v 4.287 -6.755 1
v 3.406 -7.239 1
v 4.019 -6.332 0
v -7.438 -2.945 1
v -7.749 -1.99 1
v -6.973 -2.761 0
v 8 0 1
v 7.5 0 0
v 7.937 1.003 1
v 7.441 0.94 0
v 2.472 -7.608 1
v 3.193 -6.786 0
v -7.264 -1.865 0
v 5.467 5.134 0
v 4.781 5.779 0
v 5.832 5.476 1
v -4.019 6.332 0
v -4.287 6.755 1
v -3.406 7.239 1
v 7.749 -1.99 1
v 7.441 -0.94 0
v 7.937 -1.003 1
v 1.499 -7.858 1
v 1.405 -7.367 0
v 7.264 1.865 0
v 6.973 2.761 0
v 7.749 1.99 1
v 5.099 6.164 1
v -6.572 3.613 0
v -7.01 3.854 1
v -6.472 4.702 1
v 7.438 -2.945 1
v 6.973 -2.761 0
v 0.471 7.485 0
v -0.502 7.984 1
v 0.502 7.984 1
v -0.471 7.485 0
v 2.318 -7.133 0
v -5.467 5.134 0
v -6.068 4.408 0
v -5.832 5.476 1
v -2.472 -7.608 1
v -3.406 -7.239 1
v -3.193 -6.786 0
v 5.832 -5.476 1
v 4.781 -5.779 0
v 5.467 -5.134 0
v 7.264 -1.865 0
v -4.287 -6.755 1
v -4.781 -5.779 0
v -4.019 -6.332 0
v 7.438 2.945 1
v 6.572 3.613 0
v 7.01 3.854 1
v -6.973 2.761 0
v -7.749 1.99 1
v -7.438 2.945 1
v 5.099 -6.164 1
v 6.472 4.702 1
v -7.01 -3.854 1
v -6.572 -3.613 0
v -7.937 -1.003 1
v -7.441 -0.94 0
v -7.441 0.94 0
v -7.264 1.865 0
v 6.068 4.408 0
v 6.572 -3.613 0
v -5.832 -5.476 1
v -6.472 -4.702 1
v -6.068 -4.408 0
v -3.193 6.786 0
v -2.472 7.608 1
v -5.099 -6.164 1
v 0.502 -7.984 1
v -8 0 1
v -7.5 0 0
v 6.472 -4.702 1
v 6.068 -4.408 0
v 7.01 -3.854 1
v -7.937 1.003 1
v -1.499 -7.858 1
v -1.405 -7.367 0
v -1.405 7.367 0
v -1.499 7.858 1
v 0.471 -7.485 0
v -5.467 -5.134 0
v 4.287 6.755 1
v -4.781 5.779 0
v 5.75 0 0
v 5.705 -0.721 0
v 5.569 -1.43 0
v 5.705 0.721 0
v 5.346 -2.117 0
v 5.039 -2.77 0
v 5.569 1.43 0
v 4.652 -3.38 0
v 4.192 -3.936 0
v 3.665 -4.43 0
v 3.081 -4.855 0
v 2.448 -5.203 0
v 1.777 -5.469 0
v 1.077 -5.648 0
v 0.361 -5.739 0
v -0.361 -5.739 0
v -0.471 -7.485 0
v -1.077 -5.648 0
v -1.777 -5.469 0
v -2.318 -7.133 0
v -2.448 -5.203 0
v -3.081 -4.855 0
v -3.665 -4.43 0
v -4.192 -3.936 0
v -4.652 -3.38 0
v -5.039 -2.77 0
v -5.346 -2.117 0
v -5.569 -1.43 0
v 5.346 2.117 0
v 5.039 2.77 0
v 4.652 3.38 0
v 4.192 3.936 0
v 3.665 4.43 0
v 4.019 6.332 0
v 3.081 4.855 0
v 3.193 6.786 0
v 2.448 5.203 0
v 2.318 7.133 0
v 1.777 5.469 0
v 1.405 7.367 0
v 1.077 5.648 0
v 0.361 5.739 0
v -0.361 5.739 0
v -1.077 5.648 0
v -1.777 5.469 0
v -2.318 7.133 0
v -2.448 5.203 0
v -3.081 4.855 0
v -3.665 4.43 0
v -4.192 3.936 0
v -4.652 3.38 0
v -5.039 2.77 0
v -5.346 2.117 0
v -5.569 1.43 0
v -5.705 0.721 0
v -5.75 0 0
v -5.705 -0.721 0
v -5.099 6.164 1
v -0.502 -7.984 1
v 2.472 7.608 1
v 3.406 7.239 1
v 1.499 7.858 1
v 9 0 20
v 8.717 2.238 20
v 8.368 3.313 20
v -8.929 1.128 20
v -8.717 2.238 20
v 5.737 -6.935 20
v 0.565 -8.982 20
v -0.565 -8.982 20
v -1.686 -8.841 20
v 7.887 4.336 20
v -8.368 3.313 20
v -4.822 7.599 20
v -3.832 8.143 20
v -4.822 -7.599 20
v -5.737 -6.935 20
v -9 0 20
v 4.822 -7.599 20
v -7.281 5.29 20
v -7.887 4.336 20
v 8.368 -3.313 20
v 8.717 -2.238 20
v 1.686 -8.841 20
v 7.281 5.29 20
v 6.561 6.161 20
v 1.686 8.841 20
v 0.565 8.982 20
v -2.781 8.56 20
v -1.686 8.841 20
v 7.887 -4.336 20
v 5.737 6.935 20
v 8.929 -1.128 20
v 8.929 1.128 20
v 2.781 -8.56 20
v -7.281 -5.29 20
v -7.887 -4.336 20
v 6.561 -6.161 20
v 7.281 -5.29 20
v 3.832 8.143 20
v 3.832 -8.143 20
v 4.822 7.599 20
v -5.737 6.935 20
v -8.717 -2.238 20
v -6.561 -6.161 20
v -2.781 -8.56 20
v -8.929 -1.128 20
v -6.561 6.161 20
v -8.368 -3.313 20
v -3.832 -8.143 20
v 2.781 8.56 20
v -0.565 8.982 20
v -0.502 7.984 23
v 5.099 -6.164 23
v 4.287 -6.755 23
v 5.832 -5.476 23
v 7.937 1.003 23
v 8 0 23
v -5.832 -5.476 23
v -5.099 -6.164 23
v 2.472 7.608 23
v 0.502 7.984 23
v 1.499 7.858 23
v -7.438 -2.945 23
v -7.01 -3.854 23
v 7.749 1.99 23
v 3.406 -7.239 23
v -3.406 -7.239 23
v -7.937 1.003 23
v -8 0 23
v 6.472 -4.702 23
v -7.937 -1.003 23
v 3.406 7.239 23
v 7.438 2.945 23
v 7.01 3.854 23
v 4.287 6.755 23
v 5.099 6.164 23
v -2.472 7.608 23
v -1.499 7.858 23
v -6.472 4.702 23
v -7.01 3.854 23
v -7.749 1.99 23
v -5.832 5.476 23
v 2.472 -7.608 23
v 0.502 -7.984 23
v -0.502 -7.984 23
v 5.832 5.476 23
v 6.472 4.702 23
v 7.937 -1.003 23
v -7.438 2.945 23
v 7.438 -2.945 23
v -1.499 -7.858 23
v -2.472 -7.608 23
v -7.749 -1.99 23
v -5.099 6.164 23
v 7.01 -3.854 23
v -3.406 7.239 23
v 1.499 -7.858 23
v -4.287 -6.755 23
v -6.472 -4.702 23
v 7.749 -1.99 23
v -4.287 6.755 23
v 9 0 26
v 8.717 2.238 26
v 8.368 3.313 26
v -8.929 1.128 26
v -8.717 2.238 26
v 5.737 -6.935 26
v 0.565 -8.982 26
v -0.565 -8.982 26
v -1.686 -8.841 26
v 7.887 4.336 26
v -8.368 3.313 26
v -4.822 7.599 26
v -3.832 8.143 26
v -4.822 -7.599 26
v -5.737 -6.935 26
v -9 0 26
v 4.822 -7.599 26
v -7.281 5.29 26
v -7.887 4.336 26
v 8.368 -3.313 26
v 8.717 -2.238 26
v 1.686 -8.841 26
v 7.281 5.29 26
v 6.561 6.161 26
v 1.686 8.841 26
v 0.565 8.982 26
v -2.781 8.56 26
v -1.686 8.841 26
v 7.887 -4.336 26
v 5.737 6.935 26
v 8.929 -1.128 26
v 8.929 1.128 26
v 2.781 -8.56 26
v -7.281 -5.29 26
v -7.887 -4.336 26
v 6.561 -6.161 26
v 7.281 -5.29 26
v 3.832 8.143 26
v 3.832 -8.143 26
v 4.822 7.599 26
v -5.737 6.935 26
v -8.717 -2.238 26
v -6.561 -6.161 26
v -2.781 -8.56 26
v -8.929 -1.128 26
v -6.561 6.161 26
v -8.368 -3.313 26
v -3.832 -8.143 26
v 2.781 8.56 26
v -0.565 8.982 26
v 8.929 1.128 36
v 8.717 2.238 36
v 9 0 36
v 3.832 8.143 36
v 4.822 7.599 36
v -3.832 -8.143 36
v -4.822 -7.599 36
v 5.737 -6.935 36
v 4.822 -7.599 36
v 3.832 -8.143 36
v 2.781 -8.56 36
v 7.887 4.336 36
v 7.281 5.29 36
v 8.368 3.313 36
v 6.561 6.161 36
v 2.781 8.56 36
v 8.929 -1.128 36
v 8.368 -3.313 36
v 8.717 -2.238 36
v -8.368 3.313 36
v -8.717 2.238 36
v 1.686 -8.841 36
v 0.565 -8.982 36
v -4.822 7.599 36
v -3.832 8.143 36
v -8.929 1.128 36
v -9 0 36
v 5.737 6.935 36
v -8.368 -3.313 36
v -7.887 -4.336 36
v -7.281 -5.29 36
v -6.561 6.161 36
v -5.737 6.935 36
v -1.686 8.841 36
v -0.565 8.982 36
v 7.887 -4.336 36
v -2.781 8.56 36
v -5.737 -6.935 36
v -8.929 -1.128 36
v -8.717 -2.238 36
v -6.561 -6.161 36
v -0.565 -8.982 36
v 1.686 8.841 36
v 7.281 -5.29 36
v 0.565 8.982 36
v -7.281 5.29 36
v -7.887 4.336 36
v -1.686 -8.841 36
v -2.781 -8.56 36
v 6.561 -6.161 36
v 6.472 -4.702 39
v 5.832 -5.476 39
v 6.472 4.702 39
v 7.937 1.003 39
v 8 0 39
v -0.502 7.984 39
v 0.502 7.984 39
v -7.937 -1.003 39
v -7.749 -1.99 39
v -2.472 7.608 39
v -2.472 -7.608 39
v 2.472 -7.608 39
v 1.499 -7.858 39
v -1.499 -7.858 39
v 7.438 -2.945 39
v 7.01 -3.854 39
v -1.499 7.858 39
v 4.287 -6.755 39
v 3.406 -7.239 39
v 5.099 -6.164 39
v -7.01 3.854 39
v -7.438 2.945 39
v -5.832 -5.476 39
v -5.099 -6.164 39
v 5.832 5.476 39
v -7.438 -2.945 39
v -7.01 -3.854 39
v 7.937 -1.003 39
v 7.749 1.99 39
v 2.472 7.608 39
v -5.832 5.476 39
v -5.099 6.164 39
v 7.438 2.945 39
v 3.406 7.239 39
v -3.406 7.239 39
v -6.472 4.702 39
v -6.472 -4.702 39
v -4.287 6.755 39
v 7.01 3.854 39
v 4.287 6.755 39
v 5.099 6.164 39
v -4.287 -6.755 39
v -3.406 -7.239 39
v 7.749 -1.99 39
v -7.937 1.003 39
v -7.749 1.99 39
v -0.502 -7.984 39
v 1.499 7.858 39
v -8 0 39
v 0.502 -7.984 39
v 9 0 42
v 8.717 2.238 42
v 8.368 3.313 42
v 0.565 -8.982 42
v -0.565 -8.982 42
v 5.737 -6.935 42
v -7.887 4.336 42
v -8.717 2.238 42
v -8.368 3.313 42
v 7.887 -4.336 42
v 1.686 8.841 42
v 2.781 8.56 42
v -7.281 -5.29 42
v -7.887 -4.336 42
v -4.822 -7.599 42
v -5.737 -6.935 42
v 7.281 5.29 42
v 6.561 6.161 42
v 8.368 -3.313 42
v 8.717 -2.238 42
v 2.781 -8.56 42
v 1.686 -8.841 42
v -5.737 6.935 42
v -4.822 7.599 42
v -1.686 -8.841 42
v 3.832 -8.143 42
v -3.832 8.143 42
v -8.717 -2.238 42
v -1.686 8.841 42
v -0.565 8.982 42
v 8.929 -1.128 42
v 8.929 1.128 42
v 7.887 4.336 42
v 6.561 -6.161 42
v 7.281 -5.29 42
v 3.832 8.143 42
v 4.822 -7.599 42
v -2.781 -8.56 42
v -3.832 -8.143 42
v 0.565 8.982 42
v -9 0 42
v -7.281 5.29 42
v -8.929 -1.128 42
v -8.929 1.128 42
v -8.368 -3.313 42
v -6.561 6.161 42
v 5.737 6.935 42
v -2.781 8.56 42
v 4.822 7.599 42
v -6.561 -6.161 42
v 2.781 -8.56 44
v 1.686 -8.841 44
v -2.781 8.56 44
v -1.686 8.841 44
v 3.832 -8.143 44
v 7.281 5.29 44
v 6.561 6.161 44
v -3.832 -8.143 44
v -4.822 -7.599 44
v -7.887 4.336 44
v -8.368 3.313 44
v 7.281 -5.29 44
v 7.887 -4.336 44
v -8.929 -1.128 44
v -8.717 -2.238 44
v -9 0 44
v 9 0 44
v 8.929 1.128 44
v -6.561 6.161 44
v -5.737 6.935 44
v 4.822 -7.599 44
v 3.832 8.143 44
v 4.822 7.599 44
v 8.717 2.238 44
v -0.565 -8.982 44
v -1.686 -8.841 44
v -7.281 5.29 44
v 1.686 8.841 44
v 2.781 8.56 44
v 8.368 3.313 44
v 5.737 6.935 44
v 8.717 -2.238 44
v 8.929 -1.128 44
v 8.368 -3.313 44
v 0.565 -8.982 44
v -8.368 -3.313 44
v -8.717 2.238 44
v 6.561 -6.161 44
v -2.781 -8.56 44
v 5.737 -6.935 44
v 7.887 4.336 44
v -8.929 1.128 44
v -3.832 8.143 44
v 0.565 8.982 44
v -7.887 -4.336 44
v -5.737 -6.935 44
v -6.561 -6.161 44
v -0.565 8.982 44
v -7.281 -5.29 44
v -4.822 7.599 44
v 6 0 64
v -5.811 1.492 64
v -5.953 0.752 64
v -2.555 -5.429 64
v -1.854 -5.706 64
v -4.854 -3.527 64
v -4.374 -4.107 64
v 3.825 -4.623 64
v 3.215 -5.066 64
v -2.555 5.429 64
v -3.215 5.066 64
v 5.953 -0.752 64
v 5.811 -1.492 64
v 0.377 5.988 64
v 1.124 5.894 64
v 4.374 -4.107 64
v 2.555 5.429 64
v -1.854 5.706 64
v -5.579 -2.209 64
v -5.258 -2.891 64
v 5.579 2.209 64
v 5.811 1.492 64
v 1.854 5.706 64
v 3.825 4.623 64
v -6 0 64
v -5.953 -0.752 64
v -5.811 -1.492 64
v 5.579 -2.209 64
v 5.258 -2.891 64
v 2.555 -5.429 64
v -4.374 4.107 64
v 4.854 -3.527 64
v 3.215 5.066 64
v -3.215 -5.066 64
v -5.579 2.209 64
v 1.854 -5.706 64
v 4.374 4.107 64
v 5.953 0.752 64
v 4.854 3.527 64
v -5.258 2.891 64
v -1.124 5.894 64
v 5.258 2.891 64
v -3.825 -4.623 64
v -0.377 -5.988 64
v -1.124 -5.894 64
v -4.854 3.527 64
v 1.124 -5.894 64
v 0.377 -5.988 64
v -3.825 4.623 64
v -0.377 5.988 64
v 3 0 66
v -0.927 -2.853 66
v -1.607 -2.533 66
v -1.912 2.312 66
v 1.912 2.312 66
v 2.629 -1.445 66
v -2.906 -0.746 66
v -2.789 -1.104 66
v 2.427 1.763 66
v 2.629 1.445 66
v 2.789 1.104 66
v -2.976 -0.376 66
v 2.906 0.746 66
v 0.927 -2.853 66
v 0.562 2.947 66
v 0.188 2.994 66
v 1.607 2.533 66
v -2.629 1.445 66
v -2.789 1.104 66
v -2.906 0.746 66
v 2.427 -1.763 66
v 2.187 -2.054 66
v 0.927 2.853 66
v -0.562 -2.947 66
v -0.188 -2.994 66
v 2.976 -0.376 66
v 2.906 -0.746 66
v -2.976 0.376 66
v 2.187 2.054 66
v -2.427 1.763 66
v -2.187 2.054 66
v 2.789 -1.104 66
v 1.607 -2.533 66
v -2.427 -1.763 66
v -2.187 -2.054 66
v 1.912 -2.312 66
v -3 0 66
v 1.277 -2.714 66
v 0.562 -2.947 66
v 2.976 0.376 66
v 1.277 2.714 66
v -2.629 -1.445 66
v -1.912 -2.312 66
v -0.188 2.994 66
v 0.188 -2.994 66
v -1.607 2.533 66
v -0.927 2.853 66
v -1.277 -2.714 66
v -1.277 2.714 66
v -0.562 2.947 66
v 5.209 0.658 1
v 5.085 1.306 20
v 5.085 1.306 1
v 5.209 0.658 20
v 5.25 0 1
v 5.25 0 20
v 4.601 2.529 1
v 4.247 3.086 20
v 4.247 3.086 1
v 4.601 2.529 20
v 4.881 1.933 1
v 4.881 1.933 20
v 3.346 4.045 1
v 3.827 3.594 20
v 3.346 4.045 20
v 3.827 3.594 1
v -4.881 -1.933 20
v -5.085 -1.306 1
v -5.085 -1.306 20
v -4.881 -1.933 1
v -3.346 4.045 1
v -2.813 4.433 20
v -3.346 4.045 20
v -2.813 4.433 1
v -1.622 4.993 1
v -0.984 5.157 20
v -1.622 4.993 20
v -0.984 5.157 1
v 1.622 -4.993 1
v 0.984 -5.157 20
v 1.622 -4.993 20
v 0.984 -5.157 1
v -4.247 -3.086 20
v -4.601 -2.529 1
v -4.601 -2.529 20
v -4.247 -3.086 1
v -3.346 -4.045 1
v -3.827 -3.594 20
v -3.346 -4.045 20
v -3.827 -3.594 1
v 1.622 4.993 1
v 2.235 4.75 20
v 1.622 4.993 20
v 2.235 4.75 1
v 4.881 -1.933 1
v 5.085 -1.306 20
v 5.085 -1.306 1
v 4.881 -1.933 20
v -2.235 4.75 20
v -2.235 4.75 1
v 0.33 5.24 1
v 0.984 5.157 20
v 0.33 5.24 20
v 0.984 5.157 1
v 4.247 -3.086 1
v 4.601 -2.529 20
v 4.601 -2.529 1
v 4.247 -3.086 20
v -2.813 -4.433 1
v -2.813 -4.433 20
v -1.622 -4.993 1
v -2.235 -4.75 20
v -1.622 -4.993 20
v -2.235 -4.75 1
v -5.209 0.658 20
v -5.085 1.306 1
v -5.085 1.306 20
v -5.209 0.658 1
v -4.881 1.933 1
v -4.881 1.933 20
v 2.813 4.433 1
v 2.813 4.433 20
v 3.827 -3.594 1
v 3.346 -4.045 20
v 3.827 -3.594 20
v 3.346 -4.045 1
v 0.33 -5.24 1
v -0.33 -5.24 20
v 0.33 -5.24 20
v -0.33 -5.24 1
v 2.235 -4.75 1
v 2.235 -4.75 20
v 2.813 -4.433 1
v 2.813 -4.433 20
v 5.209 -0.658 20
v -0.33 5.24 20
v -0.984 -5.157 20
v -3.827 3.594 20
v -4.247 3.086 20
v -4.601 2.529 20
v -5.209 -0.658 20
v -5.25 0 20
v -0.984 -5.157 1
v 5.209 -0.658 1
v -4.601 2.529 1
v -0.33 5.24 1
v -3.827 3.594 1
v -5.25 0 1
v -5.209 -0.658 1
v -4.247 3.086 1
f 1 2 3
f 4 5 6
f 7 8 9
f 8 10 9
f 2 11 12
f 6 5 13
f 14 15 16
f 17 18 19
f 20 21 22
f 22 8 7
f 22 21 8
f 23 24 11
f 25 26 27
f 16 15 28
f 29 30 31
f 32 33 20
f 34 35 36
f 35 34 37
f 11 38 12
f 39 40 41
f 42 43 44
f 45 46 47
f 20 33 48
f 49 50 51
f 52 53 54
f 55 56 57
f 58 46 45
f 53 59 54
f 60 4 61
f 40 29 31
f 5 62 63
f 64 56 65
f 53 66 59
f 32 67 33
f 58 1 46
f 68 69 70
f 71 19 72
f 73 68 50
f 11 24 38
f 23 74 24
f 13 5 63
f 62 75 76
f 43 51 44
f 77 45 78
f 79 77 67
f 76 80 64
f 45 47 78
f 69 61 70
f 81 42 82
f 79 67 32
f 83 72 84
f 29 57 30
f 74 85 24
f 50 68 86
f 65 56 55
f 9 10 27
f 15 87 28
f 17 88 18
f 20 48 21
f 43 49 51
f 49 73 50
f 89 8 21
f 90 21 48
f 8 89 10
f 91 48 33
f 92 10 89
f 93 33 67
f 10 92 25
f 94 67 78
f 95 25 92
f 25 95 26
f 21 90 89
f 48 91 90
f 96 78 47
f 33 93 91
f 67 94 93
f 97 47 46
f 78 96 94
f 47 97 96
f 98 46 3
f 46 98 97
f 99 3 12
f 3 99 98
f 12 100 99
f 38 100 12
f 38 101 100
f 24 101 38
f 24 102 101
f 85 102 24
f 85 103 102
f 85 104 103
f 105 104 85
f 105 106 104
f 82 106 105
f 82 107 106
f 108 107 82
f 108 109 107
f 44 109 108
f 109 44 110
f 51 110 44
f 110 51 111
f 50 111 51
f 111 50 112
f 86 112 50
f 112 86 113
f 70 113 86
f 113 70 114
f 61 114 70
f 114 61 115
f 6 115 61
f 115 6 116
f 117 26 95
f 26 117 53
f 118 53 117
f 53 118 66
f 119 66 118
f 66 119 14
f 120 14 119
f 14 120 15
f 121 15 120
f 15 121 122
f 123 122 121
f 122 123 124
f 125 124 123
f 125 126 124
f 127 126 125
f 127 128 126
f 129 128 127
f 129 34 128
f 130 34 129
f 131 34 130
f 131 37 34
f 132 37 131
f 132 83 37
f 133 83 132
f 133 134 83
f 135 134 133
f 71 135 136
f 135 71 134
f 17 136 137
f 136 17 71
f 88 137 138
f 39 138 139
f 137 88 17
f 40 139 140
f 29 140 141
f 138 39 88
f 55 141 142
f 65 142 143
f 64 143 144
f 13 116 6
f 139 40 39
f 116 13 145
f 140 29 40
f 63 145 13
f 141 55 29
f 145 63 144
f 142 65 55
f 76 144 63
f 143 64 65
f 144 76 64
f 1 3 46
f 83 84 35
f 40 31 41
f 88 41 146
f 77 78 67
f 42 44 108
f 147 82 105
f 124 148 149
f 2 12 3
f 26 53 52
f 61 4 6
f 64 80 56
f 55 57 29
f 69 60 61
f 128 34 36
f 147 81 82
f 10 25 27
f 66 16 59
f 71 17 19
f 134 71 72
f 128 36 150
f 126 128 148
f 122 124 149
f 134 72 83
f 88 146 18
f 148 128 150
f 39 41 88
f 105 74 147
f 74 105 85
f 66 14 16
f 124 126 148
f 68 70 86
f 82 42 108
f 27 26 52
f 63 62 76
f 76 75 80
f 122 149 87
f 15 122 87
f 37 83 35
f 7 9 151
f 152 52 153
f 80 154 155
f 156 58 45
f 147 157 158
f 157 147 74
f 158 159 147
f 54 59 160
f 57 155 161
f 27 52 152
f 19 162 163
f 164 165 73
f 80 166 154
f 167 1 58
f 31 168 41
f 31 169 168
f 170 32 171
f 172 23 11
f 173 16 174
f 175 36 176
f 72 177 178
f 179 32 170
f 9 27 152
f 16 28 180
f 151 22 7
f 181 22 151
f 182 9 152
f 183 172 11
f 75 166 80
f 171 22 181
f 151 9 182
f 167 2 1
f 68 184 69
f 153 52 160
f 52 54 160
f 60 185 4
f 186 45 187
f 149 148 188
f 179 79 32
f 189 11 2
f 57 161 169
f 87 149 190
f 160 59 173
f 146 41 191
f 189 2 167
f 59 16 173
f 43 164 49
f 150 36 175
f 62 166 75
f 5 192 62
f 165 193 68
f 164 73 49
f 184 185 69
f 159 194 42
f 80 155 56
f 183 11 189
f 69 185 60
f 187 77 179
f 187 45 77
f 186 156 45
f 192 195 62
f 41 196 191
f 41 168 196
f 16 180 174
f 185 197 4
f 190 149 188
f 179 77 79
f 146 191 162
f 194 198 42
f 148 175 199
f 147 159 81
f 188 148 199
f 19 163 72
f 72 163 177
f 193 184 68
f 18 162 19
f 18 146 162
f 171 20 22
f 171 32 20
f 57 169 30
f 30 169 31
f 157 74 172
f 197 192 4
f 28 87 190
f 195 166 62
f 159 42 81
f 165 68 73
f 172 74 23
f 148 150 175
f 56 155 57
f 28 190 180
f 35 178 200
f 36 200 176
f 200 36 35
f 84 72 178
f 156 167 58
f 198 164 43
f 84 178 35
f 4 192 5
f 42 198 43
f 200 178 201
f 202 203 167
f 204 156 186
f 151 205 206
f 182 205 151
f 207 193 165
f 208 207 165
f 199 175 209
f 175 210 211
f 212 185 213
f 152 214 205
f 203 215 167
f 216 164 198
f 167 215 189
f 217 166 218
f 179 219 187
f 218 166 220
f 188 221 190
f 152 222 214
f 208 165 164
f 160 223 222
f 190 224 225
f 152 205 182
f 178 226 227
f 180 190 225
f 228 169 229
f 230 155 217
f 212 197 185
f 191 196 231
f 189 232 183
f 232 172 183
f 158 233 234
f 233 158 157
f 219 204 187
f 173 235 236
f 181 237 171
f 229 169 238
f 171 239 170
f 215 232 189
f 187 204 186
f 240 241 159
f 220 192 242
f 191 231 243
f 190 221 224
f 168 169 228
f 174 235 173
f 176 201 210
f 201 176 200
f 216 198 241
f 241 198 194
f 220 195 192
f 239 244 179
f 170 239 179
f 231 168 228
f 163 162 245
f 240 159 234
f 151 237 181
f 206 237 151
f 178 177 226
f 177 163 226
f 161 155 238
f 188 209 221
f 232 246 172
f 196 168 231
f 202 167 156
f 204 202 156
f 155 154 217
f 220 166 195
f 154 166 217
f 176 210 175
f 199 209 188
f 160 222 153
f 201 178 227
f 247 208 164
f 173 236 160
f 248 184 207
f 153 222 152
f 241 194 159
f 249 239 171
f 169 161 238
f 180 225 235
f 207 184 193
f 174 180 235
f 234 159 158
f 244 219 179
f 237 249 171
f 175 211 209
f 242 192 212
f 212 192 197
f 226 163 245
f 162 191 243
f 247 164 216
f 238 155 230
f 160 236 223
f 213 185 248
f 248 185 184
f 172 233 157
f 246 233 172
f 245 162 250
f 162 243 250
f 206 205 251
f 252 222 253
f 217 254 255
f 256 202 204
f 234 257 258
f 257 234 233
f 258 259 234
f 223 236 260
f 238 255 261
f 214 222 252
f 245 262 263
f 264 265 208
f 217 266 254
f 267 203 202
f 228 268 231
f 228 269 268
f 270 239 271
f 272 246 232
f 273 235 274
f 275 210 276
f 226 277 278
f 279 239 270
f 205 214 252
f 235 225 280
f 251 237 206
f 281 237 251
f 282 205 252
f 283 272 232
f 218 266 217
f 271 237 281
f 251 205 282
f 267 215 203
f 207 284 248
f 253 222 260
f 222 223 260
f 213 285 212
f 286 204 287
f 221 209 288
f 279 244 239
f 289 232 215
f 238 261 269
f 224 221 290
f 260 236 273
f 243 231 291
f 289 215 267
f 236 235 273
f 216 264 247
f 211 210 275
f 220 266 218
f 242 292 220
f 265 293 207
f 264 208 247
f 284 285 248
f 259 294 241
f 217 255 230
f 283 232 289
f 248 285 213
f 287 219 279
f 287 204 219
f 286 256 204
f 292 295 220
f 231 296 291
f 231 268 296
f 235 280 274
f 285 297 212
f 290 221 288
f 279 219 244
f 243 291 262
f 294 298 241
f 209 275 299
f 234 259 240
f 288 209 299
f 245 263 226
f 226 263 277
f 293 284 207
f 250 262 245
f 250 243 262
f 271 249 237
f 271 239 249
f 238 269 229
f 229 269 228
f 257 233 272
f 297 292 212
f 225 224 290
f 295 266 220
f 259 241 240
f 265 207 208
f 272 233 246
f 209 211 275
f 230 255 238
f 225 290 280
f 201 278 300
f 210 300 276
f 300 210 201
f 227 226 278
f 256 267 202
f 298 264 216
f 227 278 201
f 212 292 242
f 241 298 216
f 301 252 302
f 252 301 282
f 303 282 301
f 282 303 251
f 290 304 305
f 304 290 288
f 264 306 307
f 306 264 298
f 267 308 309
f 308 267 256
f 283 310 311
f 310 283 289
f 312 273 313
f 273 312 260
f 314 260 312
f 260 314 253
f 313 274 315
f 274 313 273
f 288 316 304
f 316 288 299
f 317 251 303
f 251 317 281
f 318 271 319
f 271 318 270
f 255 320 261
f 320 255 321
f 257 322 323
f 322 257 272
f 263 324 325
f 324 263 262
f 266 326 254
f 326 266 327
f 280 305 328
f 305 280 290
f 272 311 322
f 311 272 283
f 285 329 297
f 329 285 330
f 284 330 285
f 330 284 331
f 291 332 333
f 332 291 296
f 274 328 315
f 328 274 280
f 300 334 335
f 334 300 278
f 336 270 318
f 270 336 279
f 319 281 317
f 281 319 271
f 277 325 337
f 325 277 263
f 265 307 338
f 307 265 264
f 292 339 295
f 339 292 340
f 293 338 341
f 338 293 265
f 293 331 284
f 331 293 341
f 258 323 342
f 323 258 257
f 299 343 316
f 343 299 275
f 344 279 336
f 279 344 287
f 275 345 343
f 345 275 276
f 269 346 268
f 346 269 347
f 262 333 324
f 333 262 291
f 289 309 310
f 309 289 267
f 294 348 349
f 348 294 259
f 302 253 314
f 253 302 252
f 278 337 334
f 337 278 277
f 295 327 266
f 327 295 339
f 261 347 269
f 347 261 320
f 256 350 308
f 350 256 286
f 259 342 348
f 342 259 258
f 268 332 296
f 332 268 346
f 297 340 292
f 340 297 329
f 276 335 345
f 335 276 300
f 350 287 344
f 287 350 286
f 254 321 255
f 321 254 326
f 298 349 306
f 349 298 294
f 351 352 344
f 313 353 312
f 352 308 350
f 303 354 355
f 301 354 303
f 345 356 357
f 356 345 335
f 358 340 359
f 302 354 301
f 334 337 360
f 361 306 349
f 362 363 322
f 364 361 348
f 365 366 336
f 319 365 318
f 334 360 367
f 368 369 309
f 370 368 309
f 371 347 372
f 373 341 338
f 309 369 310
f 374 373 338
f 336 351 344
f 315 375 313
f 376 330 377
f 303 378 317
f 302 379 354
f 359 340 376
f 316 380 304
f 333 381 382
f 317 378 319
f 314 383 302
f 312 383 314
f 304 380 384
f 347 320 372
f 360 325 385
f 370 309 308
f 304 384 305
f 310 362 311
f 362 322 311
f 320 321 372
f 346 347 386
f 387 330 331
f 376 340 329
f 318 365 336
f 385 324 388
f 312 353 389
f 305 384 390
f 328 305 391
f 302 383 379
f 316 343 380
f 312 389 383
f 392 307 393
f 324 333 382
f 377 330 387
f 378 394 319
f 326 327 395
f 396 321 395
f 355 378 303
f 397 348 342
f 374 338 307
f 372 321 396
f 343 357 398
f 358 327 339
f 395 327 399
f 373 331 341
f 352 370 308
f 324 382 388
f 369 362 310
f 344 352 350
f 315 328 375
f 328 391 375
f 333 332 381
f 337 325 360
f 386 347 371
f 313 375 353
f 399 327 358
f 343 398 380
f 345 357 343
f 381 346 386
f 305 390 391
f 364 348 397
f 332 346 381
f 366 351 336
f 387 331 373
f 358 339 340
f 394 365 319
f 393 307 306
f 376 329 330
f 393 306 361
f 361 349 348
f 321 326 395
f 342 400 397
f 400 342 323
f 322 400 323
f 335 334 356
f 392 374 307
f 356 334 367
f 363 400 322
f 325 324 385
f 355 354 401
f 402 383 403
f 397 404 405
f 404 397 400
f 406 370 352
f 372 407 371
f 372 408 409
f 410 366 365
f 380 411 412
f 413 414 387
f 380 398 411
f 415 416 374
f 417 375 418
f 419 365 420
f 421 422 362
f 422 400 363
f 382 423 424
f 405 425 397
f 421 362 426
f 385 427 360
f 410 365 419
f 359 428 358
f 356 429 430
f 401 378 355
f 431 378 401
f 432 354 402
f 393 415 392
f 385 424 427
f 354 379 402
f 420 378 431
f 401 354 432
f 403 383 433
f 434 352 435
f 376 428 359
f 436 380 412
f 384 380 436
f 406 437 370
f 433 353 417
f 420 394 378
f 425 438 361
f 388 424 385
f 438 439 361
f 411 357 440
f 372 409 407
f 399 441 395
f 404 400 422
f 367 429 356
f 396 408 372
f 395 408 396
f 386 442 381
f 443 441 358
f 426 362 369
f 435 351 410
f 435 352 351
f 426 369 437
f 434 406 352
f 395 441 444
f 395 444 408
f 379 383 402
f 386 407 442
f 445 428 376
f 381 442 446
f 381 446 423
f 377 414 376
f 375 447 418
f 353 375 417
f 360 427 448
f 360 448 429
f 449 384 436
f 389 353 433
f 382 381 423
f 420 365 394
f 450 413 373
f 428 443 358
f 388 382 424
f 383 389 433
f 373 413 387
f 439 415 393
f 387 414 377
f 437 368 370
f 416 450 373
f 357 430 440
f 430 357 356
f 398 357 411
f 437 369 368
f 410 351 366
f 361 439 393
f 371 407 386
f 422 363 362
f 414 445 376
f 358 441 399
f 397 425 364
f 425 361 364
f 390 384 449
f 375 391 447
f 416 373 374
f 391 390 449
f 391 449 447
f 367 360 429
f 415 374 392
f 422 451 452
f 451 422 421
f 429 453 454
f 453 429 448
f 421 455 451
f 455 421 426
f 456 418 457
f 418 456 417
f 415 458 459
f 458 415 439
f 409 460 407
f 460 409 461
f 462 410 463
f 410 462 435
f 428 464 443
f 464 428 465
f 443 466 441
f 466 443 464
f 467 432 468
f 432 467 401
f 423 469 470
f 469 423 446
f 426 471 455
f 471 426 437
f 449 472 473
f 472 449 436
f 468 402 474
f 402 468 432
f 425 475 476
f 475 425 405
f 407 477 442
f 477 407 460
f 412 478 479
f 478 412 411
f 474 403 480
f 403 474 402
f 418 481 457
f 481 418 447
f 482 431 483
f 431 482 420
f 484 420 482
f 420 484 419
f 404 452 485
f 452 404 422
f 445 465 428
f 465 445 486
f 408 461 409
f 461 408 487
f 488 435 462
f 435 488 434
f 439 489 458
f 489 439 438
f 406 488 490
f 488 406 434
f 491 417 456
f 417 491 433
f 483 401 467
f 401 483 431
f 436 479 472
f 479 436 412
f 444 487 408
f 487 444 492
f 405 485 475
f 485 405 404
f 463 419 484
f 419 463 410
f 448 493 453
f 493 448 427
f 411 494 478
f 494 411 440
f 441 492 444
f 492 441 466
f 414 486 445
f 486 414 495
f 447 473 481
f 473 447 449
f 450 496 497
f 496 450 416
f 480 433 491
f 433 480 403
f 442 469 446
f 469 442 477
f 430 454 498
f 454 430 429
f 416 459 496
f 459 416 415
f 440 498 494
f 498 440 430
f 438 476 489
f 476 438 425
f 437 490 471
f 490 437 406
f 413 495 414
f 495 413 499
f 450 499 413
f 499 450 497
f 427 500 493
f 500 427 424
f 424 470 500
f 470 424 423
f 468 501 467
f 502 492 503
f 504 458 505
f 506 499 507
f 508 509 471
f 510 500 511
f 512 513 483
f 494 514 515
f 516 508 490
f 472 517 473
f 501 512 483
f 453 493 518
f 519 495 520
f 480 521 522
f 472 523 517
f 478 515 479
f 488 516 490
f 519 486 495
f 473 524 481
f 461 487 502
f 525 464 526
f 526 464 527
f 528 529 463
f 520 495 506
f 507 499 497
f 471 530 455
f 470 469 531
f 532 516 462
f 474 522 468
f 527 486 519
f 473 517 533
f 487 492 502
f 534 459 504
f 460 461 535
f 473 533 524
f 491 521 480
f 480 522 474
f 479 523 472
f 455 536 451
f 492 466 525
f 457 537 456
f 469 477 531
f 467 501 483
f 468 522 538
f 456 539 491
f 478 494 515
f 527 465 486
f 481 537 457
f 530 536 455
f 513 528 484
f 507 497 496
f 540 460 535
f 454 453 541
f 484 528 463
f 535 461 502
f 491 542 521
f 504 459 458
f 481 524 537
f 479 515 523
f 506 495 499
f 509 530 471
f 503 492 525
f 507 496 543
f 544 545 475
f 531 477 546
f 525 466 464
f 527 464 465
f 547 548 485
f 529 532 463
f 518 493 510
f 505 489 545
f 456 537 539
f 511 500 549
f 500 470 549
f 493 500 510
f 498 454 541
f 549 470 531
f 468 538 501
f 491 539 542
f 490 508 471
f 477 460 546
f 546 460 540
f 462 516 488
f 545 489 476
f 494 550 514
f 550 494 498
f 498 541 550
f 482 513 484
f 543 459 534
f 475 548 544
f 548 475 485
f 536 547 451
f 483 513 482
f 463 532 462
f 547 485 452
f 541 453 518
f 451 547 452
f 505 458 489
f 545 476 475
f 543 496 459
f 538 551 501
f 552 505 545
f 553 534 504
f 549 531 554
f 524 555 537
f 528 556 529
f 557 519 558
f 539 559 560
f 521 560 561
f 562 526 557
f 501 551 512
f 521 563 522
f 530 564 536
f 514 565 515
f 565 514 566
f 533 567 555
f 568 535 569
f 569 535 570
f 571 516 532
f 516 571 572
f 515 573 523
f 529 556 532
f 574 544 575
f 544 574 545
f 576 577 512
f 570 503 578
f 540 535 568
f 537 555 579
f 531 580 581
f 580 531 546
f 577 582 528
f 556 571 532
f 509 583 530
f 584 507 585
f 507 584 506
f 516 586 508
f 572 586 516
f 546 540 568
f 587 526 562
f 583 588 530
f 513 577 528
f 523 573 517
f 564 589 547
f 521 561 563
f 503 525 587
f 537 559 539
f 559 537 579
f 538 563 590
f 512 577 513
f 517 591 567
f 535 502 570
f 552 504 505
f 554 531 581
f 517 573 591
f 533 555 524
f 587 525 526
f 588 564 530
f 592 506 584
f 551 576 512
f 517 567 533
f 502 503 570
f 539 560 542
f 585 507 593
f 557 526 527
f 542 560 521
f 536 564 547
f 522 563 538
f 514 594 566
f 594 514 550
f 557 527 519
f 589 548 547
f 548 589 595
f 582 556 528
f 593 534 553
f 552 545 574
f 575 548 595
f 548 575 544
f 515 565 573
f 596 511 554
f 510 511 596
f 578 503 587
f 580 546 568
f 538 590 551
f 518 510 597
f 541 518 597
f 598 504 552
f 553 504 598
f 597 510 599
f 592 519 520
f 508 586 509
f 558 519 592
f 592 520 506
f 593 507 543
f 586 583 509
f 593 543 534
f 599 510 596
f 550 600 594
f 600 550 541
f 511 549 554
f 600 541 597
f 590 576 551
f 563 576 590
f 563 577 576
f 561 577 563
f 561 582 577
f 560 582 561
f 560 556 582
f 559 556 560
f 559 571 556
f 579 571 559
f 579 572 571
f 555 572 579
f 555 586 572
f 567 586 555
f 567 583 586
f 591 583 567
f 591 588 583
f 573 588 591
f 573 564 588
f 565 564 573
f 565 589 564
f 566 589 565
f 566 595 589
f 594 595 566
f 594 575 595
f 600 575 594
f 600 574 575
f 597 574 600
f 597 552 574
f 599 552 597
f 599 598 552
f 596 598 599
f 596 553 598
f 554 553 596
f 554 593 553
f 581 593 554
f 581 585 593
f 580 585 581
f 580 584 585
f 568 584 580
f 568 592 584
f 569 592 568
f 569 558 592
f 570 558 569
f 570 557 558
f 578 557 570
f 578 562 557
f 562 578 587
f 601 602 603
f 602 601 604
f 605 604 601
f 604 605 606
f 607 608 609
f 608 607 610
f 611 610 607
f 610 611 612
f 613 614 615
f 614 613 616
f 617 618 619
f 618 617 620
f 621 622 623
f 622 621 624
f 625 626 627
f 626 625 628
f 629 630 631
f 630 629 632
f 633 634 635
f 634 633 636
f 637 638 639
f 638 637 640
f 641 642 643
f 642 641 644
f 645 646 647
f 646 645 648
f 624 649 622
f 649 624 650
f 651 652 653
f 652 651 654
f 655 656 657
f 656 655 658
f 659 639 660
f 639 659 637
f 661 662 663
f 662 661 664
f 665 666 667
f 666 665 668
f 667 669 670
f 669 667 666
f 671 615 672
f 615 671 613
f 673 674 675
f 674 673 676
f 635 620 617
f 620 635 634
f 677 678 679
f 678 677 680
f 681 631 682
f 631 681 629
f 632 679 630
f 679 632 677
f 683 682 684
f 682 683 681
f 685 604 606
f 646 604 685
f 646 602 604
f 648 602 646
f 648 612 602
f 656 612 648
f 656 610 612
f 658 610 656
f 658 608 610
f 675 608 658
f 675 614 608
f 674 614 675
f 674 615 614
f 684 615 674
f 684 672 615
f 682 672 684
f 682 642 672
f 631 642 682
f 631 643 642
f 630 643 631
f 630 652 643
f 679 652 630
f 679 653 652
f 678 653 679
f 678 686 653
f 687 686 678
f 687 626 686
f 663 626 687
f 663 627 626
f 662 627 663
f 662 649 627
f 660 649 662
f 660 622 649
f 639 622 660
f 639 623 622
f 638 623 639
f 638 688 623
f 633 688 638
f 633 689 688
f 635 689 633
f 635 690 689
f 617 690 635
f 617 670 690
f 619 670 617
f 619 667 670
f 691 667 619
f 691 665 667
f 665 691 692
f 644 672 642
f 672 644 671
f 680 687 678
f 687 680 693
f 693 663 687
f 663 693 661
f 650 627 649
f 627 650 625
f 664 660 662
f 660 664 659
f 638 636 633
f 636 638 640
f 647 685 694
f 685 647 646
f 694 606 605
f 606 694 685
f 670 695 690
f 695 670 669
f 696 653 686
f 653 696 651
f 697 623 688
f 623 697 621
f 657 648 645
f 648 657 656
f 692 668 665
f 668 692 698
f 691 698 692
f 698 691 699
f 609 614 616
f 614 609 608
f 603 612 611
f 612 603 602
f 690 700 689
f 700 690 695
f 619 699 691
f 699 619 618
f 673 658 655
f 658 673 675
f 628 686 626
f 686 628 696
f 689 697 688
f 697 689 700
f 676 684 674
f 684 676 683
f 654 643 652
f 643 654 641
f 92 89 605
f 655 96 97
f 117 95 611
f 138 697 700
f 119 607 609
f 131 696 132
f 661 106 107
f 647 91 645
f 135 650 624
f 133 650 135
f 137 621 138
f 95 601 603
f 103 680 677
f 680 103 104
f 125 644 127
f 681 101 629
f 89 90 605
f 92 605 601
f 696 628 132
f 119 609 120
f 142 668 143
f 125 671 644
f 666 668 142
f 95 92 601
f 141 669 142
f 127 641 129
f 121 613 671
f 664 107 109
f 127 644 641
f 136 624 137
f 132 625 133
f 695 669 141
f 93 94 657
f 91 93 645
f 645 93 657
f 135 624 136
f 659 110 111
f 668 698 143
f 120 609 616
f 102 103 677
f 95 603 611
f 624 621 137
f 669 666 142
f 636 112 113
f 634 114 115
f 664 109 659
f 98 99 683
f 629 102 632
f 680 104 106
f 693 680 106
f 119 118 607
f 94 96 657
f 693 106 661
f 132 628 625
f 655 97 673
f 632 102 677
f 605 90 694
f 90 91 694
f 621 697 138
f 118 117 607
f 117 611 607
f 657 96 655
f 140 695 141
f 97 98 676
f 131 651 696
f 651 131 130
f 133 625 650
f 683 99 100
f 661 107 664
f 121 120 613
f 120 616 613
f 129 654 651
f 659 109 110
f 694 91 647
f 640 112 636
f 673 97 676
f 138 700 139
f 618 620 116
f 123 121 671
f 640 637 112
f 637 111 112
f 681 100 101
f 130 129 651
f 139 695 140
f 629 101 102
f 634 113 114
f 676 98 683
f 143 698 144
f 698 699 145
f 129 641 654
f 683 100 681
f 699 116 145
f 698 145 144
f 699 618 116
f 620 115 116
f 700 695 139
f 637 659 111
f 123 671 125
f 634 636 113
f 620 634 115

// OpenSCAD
$fn=50;

difference() {
    union() {
        translate([0, 0, 0]) cylinder(r1=7.5, r2=8, h=1);
        translate([0, 0, 1]) cylinder(r1=8, r2=9, h=19);
        translate([0, 0, 20]) cylinder(r1=9, r2=8, h=3);
        translate([0, 0, 23]) cylinder(r2=9, r1=8, h=3);
        translate([0, 0, 26]) cylinder(r=9, h=10);
        translate([0, 0, 36]) cylinder(r1=9, r2=8, h=3);
        translate([0, 0, 39]) cylinder(r2=9, r1=8, h=3);
        translate([0, 0, 42]) cylinder(r=9, h=2);
        translate([0, 0, 44]) cylinder(r1=9, r2=6, h=20);
        translate([0, 0, 64]) cylinder(r1=6, r2=3, h=2);
    }
    cylinder(d=10.5, h=20);
    cylinder(d1=11.5, d2=10.5, h=1);
}
